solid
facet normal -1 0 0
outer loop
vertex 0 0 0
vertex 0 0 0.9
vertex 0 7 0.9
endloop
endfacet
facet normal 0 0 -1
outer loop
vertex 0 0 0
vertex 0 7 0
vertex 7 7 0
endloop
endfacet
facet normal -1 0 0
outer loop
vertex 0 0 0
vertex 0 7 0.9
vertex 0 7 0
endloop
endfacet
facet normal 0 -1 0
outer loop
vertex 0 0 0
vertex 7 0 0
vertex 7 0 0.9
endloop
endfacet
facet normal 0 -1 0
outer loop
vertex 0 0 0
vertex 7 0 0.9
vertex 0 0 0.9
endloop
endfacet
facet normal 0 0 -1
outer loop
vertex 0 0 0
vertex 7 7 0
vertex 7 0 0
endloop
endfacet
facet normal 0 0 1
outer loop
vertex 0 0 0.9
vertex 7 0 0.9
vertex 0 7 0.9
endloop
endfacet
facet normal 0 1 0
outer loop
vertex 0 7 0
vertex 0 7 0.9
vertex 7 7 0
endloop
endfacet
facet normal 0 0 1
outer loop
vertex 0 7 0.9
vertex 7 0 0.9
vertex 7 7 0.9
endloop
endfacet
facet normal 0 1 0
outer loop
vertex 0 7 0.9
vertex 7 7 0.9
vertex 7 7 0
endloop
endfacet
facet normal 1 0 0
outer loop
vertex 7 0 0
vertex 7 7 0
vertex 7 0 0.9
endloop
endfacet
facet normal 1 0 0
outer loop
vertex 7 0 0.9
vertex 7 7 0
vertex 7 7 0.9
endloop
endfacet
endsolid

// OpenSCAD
/* Warning, this is a very basic generator with a lot of approximation 
input data : [VQFN, 3LX, 7x7x0.9mm, 48, , A, C04-00480A]
generated by com.zoubworld.electronics.cad.model3d.Basic
Date : Sun Feb 15 10:50:48 CET 2026
*/

//body
color("black")
translate([0,0,0])
cube([7.0,7.0,0.9], center=false);
